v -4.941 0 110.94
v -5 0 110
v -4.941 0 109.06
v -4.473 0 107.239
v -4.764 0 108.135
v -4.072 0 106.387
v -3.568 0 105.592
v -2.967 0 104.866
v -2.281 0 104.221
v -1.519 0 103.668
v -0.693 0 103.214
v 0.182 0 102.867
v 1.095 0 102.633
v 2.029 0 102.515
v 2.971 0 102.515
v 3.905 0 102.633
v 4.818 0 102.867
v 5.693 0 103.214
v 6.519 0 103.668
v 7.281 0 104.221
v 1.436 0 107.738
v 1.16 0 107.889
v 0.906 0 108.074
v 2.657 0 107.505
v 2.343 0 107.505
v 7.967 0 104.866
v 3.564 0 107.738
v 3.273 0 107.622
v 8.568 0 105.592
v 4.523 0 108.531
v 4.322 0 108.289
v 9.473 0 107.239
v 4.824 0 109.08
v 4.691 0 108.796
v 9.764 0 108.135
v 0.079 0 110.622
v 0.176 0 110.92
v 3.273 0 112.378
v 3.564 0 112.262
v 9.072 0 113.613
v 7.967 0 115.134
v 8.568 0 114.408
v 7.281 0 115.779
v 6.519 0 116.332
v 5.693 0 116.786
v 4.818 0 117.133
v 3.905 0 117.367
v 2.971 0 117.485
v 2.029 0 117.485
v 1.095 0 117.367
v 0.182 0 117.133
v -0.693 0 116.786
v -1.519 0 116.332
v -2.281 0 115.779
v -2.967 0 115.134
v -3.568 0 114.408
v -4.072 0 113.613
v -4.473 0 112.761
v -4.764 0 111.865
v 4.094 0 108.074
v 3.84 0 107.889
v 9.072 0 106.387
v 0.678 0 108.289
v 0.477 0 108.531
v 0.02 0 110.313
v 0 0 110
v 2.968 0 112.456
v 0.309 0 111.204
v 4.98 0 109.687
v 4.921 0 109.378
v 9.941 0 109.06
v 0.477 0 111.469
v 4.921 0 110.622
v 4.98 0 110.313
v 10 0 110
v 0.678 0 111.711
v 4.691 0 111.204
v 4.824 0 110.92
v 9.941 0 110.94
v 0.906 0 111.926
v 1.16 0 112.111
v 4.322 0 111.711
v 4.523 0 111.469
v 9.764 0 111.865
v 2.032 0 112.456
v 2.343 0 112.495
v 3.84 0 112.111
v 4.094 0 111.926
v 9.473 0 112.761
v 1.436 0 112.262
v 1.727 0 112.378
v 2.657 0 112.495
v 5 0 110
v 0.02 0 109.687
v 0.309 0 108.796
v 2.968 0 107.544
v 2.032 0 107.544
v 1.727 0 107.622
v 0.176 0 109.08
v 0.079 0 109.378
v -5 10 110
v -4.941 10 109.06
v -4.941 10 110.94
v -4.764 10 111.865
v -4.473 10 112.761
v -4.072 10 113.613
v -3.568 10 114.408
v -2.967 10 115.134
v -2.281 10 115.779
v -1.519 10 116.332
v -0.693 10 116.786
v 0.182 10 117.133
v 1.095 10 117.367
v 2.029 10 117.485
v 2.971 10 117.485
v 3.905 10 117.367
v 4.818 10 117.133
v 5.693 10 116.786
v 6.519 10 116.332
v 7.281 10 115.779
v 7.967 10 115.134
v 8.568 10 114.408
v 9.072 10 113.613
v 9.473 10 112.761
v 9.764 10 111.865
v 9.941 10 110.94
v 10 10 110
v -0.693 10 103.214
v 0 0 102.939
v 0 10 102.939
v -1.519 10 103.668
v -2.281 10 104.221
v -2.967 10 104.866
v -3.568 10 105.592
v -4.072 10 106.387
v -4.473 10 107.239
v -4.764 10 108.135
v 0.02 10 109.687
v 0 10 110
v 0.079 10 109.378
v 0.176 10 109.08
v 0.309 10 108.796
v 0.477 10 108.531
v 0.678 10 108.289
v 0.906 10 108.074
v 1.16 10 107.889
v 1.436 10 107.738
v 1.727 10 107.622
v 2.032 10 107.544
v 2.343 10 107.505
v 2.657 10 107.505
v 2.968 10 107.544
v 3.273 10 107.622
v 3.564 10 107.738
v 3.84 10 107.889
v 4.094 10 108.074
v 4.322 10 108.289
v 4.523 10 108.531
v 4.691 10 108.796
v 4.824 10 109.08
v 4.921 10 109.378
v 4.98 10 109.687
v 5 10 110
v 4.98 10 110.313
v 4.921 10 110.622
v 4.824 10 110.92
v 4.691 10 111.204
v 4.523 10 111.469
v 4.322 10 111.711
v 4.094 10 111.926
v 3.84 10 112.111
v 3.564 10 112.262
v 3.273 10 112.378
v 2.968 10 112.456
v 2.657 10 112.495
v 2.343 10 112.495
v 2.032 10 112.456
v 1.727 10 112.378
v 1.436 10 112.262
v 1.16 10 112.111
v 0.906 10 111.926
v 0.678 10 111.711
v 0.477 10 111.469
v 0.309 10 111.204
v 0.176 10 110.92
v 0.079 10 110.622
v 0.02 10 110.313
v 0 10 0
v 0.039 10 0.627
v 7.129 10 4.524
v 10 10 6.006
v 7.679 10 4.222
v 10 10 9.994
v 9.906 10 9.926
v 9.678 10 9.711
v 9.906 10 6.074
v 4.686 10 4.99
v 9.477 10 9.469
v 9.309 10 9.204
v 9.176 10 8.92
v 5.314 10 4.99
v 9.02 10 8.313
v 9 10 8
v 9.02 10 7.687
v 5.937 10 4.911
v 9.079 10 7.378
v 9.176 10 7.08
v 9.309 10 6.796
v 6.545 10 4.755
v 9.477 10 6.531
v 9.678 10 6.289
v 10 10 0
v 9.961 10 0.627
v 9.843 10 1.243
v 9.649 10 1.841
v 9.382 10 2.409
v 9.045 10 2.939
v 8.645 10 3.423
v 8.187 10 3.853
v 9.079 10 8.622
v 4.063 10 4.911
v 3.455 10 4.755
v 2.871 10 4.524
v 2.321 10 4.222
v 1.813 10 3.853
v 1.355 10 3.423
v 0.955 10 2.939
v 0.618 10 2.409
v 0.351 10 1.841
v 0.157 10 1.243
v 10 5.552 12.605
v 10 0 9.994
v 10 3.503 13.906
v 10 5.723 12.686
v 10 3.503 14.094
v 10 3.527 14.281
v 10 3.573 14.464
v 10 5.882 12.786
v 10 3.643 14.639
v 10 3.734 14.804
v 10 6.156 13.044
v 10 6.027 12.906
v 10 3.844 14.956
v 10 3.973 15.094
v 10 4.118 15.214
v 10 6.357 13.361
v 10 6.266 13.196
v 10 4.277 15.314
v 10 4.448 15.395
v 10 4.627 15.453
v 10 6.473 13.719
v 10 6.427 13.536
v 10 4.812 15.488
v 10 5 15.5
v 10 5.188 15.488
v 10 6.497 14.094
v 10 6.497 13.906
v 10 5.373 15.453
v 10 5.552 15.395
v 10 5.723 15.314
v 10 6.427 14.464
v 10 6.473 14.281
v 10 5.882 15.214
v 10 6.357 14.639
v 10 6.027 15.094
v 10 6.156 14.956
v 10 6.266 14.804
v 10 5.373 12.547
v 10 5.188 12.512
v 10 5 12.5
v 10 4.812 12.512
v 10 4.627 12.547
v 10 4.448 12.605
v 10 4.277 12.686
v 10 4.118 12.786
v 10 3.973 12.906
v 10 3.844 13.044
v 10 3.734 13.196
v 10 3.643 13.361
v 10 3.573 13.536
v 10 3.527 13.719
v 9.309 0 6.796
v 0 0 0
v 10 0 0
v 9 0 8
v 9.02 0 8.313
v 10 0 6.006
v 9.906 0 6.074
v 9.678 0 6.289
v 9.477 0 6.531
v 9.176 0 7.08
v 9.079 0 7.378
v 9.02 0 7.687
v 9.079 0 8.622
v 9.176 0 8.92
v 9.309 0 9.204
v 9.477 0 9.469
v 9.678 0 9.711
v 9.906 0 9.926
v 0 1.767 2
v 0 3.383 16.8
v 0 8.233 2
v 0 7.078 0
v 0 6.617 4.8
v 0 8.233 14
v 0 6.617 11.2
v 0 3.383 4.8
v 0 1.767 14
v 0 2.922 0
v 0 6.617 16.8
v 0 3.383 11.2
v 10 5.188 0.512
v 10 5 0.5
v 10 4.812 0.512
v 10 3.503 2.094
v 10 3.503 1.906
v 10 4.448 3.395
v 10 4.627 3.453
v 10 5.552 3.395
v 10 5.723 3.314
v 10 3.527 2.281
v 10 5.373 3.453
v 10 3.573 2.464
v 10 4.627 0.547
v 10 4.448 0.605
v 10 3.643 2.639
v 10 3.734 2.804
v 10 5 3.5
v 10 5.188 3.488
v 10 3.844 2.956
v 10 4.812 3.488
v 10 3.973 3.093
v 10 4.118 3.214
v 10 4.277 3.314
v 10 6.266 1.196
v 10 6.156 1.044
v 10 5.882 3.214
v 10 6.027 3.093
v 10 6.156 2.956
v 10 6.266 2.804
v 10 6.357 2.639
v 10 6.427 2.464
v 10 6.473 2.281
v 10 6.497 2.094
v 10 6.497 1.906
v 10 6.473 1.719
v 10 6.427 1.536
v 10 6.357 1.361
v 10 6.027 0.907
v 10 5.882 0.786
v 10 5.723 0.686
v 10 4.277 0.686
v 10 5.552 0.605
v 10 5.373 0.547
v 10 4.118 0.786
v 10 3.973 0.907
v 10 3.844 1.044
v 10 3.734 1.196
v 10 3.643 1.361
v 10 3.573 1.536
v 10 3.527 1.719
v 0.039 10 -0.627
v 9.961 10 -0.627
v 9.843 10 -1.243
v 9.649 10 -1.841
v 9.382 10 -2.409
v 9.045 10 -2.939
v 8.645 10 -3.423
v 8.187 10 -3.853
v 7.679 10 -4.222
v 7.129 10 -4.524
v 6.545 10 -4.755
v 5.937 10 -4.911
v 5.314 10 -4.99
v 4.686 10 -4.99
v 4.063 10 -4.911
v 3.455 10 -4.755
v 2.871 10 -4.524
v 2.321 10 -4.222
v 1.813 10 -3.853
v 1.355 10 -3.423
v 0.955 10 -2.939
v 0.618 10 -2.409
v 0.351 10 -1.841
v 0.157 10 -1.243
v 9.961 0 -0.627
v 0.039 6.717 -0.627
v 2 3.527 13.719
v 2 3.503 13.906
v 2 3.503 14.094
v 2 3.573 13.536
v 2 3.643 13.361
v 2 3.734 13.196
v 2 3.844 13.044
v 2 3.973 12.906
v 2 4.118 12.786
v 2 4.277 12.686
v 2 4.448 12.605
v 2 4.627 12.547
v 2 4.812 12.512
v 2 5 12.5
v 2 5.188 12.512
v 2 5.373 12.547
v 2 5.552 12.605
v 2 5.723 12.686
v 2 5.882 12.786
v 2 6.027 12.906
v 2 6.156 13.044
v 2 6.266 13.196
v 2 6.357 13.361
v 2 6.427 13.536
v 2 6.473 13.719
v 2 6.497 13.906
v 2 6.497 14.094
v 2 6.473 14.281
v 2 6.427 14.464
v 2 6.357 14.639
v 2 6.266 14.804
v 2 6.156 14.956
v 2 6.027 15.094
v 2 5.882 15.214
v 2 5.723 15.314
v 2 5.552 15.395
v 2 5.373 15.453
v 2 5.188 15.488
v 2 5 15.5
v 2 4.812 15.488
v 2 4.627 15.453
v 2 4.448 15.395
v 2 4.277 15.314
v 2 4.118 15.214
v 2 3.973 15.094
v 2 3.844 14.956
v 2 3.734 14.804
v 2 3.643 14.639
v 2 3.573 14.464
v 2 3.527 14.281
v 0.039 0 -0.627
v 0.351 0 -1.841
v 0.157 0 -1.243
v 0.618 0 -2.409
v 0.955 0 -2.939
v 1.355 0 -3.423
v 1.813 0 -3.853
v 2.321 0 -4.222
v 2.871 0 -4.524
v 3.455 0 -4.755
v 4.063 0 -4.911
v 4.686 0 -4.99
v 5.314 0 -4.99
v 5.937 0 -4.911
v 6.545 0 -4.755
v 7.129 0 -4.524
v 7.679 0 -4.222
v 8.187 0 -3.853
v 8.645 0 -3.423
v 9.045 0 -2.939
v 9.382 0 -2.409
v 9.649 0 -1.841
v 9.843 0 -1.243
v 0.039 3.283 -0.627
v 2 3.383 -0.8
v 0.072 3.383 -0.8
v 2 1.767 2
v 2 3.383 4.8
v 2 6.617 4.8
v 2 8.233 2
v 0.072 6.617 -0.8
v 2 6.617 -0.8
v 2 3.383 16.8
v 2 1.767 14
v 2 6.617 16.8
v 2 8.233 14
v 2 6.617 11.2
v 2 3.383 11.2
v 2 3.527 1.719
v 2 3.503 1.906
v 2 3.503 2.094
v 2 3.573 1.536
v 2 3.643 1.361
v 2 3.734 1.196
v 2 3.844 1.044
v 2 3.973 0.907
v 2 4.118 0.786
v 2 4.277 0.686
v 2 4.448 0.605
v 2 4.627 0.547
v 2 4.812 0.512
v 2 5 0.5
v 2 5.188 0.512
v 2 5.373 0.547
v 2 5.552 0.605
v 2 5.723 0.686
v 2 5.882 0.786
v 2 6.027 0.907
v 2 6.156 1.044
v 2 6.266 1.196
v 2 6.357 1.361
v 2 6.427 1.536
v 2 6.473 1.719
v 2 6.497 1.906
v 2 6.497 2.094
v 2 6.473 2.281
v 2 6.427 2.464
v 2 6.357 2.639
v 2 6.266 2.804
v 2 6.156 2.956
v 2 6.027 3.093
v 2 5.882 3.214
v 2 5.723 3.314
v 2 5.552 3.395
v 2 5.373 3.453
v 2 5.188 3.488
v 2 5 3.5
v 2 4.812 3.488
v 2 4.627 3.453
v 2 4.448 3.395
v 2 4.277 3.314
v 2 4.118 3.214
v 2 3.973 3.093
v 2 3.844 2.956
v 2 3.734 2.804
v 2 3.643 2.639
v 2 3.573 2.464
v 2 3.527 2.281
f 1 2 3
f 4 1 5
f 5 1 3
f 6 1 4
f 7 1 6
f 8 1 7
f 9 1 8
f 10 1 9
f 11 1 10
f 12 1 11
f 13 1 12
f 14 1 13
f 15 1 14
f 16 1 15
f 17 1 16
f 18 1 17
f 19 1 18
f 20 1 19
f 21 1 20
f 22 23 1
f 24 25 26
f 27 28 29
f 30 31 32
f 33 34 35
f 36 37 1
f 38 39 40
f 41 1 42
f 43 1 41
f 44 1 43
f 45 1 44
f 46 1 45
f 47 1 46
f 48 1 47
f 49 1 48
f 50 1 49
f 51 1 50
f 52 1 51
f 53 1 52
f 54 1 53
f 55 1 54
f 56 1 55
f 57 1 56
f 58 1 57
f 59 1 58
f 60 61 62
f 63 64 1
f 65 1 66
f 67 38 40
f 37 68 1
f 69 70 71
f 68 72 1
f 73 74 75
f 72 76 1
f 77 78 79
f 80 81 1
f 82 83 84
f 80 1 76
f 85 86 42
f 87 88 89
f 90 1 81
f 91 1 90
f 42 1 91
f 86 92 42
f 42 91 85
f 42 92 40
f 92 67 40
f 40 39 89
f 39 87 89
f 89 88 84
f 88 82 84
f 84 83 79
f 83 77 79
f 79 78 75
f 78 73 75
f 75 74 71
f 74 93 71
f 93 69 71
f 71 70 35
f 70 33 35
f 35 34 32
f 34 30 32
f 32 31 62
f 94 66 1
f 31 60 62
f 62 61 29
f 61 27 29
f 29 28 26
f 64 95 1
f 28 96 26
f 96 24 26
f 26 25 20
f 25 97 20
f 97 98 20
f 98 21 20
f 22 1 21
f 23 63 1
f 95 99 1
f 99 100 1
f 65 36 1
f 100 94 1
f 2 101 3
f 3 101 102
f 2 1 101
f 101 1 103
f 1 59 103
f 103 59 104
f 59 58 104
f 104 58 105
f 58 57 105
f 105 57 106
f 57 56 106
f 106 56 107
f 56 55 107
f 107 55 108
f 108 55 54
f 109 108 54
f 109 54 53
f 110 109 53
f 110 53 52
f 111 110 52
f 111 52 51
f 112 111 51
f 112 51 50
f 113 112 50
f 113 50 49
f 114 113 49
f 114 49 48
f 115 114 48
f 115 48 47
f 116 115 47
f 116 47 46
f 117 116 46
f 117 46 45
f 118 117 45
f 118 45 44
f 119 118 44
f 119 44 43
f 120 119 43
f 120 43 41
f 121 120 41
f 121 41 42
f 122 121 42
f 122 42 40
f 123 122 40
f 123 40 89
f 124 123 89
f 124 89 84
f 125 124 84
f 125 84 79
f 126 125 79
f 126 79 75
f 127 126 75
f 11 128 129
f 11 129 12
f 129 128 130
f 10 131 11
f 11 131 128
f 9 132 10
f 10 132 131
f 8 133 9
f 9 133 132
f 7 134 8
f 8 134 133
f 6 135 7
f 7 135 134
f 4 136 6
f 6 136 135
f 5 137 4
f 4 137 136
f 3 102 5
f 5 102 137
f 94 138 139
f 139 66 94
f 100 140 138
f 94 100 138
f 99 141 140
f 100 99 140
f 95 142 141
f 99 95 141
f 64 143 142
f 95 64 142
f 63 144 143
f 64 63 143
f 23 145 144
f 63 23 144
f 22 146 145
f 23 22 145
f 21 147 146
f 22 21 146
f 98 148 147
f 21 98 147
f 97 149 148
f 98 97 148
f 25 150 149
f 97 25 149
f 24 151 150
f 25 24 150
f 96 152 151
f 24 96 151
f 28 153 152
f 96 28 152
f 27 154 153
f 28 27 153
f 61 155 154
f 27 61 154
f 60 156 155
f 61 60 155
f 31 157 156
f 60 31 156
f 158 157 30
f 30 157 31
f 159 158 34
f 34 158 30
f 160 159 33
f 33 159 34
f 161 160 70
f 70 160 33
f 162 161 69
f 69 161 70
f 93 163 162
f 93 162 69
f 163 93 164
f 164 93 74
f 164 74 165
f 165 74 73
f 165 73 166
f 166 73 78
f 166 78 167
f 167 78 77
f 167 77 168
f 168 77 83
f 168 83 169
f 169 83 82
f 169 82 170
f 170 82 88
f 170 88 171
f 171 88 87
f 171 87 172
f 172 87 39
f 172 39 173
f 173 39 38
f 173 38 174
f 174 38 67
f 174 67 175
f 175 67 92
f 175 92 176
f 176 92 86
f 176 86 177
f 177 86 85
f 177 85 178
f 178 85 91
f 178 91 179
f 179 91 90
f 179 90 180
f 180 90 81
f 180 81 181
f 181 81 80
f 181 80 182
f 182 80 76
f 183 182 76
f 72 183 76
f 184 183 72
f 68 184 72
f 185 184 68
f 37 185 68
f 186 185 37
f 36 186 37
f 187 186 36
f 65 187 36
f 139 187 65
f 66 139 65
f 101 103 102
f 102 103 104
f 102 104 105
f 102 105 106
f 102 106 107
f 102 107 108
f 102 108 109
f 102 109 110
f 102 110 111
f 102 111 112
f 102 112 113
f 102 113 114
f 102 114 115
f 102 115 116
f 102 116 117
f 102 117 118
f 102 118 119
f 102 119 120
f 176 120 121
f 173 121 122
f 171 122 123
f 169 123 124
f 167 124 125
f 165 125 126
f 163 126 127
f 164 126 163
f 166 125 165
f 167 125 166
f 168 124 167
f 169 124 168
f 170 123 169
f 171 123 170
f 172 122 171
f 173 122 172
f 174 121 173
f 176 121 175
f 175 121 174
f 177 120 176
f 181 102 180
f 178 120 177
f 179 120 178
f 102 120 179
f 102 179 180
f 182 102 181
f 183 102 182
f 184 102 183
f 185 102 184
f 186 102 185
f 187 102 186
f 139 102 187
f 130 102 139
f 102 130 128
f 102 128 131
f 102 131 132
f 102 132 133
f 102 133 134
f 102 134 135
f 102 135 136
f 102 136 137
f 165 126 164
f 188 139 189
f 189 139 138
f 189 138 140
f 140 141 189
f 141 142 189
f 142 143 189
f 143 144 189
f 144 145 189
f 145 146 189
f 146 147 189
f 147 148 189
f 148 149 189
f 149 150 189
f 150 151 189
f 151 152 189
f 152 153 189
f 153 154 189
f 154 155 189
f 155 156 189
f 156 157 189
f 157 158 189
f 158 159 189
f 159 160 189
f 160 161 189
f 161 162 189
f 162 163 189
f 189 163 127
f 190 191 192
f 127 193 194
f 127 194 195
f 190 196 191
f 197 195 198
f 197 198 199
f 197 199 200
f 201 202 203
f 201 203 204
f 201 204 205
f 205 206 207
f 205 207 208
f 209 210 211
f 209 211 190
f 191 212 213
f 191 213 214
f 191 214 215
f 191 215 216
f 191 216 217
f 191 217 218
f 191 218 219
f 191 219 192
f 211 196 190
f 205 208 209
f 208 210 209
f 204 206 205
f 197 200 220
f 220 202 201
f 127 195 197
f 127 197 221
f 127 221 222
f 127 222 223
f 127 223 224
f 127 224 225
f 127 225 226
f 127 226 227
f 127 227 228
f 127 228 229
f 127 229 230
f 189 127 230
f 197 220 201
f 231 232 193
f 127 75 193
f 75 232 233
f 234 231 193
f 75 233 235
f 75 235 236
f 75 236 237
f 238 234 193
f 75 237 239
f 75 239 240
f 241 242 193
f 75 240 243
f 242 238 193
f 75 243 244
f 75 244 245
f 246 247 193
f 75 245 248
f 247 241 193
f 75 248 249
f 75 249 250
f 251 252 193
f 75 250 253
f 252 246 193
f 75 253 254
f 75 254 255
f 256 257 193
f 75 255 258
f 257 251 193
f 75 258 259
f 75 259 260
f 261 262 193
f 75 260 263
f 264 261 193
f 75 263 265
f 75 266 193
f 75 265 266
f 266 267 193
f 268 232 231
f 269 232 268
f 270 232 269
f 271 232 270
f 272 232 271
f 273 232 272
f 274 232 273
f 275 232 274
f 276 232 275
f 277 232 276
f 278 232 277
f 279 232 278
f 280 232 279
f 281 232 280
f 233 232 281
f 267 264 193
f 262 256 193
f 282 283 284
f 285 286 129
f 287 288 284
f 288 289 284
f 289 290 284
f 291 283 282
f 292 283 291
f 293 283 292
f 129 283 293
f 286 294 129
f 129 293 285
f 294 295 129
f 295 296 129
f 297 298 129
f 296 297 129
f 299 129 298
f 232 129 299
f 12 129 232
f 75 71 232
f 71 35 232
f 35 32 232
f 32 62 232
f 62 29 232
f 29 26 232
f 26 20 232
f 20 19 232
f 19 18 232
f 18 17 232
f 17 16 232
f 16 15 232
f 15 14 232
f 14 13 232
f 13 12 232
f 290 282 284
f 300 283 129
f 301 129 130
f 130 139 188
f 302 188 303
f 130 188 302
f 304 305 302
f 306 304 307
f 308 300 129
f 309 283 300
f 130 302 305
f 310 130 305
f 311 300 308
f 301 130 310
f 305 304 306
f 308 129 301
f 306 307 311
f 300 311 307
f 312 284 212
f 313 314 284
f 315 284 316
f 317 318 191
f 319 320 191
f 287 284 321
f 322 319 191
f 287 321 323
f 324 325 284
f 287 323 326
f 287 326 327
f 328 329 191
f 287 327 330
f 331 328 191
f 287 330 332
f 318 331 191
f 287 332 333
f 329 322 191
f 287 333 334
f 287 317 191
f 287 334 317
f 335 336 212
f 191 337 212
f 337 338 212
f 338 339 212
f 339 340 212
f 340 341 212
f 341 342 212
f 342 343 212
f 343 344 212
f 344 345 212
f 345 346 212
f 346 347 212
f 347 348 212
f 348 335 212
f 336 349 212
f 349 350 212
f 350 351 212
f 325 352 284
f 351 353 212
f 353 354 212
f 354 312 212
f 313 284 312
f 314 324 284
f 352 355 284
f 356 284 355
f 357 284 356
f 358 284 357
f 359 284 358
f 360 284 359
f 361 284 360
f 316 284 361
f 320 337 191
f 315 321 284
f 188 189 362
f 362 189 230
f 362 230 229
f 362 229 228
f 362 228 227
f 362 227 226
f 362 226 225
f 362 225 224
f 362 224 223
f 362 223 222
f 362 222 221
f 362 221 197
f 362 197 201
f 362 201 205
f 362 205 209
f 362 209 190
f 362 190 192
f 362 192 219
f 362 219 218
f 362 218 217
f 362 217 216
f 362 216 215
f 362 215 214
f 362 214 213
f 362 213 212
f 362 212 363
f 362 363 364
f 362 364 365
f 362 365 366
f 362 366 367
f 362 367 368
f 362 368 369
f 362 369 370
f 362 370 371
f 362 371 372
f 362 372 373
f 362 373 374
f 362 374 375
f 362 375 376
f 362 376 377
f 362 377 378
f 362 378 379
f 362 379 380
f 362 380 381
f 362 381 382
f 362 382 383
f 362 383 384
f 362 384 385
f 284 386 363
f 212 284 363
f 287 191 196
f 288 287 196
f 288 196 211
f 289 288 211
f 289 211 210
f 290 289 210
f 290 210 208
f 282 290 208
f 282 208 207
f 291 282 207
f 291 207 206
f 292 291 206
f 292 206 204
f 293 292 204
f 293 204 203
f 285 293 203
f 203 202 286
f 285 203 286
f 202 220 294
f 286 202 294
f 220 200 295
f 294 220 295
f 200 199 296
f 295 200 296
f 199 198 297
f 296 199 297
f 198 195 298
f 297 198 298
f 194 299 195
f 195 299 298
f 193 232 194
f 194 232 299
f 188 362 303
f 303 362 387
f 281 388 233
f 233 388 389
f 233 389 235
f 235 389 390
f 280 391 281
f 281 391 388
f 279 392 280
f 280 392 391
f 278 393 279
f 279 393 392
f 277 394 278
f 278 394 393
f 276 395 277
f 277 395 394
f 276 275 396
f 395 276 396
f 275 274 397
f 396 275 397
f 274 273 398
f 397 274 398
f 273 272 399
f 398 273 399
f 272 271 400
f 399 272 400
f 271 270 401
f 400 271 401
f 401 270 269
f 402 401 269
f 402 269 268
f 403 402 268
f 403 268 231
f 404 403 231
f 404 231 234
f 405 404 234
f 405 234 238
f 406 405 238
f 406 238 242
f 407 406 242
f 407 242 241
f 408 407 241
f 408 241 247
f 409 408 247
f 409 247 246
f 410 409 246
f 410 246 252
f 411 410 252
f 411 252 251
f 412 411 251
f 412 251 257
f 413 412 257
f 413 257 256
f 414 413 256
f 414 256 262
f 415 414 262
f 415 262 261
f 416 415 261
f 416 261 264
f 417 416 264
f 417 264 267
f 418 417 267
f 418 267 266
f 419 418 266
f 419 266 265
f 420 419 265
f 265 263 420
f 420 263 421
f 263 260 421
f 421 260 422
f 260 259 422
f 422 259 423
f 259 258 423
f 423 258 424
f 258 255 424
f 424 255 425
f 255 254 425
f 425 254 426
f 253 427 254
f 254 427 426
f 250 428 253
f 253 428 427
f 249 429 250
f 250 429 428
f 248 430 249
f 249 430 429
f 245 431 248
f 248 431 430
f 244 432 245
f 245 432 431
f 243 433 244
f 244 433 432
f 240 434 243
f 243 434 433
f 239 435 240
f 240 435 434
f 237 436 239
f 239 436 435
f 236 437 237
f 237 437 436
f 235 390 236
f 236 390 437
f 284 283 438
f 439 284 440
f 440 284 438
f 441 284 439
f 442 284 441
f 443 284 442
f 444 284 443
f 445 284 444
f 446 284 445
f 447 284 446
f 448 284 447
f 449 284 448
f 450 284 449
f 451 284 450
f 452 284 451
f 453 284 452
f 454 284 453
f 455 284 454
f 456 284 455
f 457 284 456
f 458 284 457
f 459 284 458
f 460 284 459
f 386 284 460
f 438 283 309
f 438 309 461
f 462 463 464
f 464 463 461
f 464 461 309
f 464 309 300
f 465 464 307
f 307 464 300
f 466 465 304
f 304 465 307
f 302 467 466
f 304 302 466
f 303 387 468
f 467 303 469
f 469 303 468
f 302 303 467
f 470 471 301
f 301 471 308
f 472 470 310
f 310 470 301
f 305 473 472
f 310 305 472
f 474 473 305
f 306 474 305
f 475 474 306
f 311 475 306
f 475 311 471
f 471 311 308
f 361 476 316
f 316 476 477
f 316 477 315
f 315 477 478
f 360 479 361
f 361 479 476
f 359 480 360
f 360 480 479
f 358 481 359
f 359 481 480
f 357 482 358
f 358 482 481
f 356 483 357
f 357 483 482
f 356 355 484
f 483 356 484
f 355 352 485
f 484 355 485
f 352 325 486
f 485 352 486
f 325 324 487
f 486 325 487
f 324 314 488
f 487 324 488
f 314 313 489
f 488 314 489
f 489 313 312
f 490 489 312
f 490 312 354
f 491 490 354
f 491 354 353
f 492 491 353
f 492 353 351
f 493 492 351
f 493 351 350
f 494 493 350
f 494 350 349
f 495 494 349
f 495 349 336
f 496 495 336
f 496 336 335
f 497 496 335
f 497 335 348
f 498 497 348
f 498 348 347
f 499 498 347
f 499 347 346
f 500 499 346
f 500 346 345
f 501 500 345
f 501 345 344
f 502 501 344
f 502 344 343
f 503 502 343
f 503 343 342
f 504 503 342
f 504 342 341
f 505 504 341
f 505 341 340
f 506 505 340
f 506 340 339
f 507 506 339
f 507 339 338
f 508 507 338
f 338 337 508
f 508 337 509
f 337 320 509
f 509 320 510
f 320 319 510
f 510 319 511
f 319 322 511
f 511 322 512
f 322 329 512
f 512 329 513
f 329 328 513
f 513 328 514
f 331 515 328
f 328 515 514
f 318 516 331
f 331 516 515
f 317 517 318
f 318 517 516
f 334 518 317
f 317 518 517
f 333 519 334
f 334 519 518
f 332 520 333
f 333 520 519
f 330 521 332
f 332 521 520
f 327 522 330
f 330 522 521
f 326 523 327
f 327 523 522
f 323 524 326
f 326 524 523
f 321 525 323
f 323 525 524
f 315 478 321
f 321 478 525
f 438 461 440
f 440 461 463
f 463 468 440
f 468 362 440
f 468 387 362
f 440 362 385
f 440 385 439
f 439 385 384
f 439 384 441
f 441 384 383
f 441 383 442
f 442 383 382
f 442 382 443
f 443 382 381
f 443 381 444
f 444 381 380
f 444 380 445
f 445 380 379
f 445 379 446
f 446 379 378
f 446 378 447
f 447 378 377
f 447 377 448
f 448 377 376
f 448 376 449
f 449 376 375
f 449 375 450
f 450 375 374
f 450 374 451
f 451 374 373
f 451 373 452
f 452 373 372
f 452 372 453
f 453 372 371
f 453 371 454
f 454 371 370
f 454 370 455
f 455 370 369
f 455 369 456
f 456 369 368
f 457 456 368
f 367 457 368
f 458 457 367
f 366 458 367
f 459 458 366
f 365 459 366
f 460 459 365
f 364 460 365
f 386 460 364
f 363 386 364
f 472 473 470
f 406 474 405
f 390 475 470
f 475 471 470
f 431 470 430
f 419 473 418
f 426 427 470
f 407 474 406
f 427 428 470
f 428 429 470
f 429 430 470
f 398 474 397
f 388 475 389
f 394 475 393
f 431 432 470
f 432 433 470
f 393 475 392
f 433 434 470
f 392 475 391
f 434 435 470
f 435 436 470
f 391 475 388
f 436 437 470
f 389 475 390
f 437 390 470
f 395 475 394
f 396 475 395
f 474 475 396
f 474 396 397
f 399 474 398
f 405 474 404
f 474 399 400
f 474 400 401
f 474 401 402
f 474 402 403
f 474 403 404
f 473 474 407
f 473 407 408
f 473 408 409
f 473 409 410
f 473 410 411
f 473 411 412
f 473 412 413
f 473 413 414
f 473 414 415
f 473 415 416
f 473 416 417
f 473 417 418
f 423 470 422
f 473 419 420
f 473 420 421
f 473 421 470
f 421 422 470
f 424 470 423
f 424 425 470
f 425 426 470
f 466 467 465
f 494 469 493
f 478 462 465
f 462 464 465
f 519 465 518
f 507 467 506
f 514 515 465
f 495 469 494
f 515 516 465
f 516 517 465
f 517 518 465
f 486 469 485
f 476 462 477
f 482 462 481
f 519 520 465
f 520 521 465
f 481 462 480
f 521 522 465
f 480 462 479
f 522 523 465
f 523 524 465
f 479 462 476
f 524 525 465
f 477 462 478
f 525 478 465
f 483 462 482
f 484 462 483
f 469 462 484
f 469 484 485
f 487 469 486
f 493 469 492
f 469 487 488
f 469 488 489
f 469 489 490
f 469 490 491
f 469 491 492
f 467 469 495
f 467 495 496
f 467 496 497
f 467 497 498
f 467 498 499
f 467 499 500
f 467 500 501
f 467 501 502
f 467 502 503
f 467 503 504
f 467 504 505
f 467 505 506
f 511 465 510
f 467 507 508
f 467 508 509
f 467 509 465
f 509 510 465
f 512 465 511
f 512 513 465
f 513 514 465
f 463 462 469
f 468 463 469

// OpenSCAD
module matice(s,h){
	for(i=[0:1:2]){
		difference(){
			translate([0,0,h/2])
			rotate([0,0,60*i])
			cube([s,tan(30)*s,h],center=true);
		}
	}
}

$fn=50;
difference(){
union(){
	cube([10,10,110]);

	translate([2.5,10,110])
	rotate([90,0,0])
	cylinder(r1=7.5,r2=7.5,h=10);

	translate([5,10,0])
	rotate([90,0,0])
	cylinder(r1=5,r2=5,h=10);
}
	//horni dira
	translate([2.5,12,110])
	rotate([90,0,0])
	cylinder(r1=2.5,r2=2.5,h=13);

	// spodni uchyceni
	translate([11.5,12,8])
	rotate([90,0,0])
	cylinder(r1=2.5,r2=2.5,h=13);

	// diry uchyceni drzaku
	translate([-1,5,2]){
	rotate([0,90,0]){	
	matice(5.6,3);
	cylinder(r1=1.5,r2=1.5,h=17);
	}}

	translate([-1,5,14]){
	rotate([0,90,0]){
	matice(5.6,3);
	cylinder(r1=1.5,r2=1.5,h=17);
	}}
	
}
